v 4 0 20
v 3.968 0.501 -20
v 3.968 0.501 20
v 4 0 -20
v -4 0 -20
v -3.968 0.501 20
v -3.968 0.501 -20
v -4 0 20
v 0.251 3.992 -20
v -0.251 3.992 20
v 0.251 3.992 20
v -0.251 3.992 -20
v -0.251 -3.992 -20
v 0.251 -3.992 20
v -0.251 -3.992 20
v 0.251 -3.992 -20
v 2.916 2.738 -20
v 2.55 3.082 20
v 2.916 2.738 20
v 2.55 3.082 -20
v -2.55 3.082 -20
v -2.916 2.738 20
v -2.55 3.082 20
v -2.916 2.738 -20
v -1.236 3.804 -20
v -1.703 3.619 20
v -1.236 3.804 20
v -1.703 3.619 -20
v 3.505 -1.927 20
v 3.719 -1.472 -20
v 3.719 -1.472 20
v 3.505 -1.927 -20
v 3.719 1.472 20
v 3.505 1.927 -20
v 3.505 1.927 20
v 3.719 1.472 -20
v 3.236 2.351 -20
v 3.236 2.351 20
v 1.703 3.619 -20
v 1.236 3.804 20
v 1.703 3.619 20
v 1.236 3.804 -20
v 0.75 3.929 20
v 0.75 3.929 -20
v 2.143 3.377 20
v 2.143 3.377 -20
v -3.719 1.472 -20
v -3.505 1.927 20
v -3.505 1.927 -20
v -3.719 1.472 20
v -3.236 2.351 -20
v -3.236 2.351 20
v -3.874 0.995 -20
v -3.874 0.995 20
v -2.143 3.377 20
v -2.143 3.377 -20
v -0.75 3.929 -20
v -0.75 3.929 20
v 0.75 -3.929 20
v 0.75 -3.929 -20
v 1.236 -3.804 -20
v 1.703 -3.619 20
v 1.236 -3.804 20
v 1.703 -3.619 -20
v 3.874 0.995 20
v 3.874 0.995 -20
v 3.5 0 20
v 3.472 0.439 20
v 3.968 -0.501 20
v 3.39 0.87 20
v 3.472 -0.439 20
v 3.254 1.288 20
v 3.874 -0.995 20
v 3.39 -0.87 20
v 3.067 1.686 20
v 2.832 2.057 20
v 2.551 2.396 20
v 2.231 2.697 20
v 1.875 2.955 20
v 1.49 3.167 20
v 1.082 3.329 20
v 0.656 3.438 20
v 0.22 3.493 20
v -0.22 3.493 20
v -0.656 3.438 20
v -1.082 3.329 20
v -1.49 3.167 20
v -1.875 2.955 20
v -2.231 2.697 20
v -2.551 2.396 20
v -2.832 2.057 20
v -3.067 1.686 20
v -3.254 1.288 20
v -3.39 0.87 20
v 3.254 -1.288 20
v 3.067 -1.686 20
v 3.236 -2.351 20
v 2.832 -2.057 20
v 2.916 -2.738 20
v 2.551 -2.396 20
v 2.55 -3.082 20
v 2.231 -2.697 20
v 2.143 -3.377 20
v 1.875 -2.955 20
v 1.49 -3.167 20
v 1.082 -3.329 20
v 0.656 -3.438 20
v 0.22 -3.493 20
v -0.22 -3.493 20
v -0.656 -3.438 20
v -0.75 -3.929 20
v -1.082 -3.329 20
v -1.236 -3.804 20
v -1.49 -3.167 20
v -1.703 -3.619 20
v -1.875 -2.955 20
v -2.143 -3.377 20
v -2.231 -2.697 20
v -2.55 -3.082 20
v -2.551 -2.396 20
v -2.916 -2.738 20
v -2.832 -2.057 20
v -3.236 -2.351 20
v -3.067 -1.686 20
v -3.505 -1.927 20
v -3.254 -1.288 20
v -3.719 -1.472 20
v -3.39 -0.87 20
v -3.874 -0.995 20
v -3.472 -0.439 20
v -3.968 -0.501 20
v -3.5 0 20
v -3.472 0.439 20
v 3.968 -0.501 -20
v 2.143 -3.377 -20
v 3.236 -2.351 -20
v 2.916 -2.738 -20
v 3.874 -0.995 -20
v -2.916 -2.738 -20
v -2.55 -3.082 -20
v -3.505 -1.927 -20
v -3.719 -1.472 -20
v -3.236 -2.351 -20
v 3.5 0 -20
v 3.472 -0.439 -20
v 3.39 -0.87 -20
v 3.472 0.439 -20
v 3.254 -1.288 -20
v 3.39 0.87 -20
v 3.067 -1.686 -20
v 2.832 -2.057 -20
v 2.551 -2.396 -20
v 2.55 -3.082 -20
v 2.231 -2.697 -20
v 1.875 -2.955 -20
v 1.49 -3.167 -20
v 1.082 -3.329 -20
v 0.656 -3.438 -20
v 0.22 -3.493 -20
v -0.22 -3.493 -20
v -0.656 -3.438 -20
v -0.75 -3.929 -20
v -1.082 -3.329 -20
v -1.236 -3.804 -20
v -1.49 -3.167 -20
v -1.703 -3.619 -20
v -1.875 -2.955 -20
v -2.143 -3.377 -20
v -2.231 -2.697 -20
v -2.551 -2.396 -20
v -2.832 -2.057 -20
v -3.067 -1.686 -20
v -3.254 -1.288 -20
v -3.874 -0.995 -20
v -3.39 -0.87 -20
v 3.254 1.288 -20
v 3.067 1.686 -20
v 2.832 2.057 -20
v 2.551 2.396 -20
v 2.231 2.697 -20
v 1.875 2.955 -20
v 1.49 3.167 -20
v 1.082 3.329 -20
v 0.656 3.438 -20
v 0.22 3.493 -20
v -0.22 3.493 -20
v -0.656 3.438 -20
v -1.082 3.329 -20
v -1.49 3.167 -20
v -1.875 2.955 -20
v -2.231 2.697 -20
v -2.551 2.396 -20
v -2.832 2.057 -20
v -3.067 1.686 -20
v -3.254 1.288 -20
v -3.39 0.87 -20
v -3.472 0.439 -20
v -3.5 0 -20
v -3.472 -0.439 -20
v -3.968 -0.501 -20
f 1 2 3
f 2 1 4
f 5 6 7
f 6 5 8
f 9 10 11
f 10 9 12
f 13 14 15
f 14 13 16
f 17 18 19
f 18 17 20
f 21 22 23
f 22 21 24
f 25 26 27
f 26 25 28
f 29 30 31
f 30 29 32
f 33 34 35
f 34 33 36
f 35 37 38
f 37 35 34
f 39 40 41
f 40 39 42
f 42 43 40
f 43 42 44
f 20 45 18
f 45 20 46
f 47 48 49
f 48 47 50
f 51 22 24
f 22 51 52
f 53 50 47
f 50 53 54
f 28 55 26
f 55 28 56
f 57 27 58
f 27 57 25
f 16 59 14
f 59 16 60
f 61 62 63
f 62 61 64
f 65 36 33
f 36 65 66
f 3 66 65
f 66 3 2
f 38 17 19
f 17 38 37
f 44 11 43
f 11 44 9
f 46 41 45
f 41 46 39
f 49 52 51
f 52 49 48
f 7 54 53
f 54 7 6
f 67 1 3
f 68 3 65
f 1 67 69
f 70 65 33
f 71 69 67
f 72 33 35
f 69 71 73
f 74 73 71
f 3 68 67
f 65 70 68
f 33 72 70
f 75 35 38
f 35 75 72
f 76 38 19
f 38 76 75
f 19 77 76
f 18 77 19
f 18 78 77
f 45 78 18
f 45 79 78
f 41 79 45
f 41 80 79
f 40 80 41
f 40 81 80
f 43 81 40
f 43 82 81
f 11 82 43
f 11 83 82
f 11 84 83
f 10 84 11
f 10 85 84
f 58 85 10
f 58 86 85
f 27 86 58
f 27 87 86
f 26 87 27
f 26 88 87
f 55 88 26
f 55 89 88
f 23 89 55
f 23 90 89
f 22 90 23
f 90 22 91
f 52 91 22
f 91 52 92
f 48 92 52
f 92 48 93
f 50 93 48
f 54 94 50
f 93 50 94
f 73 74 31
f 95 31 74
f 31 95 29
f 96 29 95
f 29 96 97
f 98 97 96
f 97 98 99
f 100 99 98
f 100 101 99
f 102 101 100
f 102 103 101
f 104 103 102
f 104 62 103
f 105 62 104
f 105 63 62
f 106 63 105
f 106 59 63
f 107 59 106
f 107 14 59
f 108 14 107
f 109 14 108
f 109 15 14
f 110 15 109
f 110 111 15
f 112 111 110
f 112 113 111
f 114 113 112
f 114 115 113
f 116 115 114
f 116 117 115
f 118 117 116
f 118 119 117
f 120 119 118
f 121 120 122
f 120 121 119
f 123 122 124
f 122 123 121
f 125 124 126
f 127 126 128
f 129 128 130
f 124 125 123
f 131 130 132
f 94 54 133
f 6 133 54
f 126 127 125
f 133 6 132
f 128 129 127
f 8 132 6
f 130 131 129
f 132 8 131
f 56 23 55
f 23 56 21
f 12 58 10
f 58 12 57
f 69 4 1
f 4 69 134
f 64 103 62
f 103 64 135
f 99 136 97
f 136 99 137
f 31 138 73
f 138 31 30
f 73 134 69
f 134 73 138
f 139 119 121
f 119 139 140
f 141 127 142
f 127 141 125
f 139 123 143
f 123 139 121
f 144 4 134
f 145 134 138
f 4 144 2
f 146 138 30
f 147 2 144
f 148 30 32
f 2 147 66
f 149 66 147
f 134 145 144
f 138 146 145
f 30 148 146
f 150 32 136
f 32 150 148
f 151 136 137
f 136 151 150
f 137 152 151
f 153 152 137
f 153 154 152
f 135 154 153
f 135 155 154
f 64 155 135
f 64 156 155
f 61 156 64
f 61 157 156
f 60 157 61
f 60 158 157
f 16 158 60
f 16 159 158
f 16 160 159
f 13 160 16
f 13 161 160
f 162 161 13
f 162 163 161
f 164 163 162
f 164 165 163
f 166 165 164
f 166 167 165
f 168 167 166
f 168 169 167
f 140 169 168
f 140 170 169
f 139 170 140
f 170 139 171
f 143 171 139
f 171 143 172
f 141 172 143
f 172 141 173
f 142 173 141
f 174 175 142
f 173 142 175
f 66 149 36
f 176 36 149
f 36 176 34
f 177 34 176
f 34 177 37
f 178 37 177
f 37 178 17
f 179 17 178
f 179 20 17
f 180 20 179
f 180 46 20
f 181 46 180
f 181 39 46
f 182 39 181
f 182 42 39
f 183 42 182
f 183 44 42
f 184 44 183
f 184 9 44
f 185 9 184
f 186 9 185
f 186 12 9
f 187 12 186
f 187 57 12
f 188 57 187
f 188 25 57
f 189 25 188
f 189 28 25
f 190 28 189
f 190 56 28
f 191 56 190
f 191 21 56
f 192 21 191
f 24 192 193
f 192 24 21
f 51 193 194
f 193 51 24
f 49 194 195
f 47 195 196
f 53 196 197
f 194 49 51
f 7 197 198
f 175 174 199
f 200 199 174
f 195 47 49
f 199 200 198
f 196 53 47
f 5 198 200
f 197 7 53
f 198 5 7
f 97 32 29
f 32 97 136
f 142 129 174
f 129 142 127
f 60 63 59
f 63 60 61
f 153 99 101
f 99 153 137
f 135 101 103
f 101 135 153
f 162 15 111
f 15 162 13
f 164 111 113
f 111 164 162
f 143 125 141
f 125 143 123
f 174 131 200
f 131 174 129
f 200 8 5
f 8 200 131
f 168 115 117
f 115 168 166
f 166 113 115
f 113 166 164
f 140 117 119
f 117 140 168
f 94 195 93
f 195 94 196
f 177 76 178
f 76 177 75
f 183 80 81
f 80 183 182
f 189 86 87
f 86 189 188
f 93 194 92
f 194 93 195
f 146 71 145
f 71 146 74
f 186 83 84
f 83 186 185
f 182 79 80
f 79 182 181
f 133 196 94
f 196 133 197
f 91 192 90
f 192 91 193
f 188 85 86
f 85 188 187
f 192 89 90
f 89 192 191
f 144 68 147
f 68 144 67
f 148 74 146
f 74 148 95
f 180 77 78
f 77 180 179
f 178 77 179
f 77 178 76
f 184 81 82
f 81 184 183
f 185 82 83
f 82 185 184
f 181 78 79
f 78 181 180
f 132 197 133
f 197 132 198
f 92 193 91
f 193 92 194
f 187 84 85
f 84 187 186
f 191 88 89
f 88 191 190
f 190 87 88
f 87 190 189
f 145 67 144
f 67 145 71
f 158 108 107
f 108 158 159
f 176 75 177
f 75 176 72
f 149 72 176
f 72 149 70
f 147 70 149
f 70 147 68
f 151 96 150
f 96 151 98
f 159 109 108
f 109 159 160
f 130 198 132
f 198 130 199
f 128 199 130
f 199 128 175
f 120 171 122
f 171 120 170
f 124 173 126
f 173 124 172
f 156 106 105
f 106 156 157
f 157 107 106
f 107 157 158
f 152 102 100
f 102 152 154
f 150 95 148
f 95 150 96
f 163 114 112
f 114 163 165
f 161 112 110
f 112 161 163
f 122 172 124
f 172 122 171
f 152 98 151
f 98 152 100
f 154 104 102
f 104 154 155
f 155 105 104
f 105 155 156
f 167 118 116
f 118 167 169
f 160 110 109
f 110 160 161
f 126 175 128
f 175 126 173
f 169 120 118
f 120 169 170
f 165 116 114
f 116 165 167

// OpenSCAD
$fn = 50;


difference() {
	union() {
		translate(v = [0, 0, -20.0000000000]) {
			cylinder(h = 40, r = 4.0000000000);
		}
	}
	union() {
		translate(v = [0, 0, -100.0000000000]) {
			cylinder(h = 200, r = 3.5000000000);
		}
	}
}
